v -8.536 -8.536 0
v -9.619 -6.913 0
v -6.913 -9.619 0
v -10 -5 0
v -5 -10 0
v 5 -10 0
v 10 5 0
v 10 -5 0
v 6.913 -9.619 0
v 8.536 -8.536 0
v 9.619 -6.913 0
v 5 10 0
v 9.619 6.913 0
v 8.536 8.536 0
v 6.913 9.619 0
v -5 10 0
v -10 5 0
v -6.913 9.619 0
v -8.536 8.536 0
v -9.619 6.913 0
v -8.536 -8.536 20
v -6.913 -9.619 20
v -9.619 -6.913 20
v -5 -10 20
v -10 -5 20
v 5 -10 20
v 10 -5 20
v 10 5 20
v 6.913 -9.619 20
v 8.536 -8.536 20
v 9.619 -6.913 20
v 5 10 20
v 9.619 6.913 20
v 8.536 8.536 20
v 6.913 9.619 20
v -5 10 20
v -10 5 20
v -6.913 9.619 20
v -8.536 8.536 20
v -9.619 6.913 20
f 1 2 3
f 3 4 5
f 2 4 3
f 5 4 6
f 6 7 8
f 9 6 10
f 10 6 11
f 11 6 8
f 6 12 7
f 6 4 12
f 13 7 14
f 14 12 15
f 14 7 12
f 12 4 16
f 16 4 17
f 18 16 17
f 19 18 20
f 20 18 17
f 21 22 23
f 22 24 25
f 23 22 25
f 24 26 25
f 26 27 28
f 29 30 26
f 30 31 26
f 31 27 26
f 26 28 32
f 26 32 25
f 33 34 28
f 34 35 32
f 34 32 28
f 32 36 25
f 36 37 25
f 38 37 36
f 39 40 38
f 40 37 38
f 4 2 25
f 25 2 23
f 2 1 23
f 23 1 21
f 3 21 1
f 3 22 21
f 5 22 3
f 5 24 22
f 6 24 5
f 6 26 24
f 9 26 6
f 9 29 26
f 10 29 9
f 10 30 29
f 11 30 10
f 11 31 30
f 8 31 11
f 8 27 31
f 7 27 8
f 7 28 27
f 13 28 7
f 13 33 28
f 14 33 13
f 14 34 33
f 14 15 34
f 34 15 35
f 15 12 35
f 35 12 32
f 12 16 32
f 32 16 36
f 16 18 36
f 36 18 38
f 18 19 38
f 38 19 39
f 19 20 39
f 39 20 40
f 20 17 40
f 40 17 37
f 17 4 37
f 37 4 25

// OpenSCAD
module roundedRect(size, radius) {
	x = size[0] - radius;
	y = size[1] - radius;
	hull() {
		// place 4 circles in the corners, with the given radius
		translate([(-x/2)+(radius/2), (-y/2)+(radius/2), 0])
		circle(r=radius);

		translate([(x/2)-(radius/2), (-y/2)+(radius/2), 0])
		circle(r=radius);

		translate([(-x/2)+(radius/2), (y/2)-(radius/2), 0])
		circle(r=radius);

		translate([(x/2)-(radius/2), (y/2)-(radius/2), 0])
		circle(r=radius);
	}
}

module roundedBox(size, radius) {
	z = size[2];
	linear_extrude(height=z)
		roundedRect(size, radius);
}

$fn = 16;
roundedBox([20, 20, 20], 5);
